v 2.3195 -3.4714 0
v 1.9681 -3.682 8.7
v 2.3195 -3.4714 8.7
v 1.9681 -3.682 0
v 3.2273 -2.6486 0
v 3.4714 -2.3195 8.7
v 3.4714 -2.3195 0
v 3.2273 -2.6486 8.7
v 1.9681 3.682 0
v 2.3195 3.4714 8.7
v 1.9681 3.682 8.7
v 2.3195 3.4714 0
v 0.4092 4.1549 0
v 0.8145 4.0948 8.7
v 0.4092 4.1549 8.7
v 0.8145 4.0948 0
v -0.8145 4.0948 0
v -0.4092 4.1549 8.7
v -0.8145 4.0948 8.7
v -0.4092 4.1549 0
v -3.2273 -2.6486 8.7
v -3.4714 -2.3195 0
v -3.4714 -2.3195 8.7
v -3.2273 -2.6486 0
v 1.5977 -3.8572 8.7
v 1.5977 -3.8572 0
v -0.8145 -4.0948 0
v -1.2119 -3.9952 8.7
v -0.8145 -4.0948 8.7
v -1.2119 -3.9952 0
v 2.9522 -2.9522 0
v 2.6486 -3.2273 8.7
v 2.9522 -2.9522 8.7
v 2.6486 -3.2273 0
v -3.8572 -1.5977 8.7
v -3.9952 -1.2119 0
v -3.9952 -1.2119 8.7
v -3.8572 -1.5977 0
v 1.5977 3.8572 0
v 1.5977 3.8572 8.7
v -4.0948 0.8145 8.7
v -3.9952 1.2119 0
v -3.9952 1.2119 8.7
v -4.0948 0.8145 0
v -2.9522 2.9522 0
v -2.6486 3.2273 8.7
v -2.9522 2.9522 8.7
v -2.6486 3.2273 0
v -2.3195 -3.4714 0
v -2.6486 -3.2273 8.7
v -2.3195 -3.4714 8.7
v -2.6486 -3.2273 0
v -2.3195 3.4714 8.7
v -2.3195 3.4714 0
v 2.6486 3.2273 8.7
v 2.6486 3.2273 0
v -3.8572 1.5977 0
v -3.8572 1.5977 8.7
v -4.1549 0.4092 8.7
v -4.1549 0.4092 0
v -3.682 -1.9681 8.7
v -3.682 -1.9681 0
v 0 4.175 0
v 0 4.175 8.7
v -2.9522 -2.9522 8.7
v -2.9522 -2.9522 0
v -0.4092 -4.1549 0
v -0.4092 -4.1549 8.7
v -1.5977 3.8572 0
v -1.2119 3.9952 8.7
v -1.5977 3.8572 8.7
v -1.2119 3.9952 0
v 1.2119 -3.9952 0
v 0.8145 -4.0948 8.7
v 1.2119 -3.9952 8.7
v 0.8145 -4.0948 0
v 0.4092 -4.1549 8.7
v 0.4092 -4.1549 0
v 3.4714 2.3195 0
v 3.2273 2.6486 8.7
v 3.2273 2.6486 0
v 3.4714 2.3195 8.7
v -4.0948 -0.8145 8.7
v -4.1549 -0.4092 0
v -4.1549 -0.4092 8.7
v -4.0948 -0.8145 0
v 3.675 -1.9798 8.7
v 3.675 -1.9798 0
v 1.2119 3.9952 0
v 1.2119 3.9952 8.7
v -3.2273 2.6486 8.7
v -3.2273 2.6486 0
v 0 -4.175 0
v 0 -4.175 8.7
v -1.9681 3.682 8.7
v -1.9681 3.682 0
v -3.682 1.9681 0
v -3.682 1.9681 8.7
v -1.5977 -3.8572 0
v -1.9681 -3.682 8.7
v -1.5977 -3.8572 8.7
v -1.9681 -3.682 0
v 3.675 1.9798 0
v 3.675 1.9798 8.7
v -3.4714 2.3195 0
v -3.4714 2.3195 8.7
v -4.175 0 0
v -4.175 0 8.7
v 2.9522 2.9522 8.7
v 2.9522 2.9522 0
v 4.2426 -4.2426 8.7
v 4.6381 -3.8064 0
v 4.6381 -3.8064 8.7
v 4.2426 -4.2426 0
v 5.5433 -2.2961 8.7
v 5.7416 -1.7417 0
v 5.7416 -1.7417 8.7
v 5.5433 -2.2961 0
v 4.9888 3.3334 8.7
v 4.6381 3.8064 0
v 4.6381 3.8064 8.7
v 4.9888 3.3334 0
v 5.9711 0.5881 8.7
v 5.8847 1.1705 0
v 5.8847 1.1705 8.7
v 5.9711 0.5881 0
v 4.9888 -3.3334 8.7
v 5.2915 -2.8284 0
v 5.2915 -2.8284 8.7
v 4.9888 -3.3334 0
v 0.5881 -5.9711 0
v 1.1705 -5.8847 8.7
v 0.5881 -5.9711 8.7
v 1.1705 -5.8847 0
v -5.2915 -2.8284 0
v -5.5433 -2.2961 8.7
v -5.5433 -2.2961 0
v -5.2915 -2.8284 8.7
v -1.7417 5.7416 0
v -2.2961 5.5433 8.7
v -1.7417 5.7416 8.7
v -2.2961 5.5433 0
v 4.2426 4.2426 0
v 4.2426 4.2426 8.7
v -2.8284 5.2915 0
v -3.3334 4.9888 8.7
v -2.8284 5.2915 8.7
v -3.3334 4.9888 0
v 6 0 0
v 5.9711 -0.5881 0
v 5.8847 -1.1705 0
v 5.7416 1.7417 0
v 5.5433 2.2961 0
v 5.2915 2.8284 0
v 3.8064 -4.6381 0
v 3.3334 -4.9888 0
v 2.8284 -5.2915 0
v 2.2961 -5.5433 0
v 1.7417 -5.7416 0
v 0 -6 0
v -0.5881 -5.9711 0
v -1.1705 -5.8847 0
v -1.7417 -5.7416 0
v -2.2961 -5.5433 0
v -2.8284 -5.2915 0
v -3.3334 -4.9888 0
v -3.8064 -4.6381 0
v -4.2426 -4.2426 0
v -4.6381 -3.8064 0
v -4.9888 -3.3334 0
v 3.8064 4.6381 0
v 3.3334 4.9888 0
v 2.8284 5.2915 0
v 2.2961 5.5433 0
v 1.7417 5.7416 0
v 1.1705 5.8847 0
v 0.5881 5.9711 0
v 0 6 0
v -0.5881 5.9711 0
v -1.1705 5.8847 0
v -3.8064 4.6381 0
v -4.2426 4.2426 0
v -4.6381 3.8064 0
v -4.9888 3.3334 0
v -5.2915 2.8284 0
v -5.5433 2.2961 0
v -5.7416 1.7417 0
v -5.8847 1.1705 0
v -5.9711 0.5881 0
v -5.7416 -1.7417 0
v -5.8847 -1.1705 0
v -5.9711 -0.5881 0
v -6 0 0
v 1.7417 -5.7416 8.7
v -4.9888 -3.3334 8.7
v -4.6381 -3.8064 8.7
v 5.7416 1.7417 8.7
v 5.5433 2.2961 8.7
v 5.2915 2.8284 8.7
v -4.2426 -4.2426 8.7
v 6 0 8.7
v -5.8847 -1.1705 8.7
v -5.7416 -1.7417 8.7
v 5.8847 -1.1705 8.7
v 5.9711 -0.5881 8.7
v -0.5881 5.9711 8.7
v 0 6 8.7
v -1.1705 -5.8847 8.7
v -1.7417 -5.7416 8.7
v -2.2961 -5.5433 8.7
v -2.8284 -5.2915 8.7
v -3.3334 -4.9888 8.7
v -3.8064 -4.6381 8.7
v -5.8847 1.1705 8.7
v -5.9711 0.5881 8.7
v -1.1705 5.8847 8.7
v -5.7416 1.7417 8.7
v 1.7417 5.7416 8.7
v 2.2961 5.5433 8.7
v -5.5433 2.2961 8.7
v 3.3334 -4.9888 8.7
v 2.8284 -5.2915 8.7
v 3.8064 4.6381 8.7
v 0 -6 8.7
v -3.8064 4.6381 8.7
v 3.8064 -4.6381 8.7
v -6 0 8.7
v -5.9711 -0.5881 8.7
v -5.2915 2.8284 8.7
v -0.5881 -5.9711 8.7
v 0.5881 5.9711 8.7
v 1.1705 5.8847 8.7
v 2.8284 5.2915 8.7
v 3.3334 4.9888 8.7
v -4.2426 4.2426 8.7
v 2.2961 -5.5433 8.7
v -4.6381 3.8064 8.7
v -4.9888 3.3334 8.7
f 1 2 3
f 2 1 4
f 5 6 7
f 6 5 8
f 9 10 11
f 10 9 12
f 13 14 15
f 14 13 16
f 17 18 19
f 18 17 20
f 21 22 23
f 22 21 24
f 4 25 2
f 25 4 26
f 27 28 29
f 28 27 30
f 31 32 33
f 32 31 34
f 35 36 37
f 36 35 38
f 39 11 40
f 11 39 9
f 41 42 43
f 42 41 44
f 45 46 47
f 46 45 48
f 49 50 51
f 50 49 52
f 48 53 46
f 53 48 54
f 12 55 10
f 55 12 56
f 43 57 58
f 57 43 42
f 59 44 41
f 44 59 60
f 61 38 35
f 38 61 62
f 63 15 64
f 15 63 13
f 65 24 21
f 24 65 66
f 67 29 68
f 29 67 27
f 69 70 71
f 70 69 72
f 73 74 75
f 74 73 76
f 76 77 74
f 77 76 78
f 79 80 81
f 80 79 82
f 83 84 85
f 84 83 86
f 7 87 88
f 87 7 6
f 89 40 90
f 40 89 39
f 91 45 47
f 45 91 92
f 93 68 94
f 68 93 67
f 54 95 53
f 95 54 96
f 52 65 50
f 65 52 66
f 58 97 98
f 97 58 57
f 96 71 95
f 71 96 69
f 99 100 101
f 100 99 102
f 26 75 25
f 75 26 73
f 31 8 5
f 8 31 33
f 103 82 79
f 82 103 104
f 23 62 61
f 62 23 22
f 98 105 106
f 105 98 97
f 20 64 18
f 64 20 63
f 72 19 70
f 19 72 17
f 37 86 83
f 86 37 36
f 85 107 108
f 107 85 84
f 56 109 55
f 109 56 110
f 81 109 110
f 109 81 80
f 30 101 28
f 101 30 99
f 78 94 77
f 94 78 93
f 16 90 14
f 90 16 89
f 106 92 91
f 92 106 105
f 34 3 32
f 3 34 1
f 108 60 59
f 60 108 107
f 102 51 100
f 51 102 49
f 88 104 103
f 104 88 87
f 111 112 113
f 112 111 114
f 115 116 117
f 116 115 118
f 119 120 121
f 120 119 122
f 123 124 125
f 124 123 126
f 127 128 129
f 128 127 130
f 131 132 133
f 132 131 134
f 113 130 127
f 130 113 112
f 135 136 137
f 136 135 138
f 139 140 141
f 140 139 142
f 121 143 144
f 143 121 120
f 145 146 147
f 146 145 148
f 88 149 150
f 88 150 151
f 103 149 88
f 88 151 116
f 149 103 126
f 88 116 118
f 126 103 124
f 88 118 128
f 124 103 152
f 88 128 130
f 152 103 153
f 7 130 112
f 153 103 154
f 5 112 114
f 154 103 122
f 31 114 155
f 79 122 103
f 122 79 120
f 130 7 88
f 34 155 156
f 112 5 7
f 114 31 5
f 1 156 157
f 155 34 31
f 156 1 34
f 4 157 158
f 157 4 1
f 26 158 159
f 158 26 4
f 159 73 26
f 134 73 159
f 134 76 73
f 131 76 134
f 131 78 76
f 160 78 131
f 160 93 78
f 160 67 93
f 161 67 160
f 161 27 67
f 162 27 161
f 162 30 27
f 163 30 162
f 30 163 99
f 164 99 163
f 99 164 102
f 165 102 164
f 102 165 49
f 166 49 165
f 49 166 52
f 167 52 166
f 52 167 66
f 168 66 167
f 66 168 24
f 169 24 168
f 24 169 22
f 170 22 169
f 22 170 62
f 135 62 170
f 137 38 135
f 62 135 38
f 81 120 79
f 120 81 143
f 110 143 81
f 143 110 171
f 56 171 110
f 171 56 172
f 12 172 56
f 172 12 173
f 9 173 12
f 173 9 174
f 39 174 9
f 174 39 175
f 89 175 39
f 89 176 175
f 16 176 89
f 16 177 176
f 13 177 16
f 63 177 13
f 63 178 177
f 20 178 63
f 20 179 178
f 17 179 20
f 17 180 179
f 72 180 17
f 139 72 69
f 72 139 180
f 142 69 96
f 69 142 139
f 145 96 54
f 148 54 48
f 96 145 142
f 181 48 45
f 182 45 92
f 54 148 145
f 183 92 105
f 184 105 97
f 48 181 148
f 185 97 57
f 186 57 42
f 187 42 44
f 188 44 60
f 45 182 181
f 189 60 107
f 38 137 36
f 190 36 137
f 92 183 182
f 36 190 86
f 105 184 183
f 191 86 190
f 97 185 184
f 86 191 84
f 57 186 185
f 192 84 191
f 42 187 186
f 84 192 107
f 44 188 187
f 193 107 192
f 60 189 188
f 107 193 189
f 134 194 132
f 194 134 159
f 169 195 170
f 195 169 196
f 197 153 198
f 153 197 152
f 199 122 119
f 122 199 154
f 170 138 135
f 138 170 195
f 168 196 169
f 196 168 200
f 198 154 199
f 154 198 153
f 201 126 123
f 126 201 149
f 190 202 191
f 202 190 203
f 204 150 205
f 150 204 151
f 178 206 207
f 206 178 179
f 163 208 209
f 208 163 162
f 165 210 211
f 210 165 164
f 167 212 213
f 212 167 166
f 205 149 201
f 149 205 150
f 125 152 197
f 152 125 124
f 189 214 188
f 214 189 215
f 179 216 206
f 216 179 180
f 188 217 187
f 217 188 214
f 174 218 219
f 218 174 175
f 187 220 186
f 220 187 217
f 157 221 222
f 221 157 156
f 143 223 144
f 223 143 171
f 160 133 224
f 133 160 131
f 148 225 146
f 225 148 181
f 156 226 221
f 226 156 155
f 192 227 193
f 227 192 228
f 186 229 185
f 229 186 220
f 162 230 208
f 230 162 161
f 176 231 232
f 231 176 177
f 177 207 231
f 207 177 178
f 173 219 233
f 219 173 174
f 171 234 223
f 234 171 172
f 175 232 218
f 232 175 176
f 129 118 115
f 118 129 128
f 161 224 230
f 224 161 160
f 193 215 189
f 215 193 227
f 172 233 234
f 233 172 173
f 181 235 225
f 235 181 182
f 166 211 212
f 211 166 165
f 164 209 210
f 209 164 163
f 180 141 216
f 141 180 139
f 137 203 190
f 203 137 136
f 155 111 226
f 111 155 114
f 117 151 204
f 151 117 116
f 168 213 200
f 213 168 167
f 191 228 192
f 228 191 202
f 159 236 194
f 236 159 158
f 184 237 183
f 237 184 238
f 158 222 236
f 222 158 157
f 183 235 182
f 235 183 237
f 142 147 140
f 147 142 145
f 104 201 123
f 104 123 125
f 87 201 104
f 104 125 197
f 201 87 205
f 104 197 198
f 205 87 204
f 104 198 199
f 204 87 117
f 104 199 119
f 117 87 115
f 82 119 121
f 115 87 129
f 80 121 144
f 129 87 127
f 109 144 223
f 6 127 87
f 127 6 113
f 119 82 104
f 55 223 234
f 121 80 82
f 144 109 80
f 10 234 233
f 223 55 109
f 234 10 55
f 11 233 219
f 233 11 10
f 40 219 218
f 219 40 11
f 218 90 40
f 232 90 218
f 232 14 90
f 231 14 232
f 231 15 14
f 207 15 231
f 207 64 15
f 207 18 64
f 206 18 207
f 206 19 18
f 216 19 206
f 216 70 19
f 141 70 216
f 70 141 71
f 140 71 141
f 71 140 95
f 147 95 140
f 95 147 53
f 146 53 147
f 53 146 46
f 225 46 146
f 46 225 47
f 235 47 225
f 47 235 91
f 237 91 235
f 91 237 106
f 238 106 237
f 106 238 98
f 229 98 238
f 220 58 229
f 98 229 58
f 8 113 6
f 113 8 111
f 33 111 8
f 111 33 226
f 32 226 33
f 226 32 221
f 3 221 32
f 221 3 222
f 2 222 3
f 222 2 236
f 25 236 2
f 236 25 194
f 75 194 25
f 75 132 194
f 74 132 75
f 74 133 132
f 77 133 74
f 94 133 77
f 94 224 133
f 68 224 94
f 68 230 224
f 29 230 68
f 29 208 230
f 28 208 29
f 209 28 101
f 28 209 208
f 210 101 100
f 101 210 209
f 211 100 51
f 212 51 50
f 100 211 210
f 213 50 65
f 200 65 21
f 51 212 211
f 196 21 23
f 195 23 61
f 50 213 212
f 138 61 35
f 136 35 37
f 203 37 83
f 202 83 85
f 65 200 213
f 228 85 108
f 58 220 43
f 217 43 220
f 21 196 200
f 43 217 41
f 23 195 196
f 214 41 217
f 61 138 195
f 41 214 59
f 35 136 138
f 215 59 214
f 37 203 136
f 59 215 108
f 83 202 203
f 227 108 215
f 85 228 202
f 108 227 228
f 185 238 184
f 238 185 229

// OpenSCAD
// Gen-DB — gap sleeve: rigid spacer on the shaft BETWEEN the two rotor carriers (passes through the stator
// hole). Length = m2m, so it sets the magnet gap and carries the full magnet pull. Print x1, upright.
include <parameters.scad>;
$fn = 64;
// D-flat keyed bore: flat faces +X (angle 0 = magnet pocket 0 = index notch)
module dflat_bore(h) {
    intersection() {
        cylinder(d=shaft_bore, h=h);
        translate([-shaft_bore, -shaft_bore, 0]) cube([shaft_bore + dflat_x, 2*shaft_bore, h]);
    }
}

difference() {
    cylinder(d=sleeve_od, h=m2m);
    translate([0, 0, -0.1]) dflat_bore(m2m + 0.2);
}
